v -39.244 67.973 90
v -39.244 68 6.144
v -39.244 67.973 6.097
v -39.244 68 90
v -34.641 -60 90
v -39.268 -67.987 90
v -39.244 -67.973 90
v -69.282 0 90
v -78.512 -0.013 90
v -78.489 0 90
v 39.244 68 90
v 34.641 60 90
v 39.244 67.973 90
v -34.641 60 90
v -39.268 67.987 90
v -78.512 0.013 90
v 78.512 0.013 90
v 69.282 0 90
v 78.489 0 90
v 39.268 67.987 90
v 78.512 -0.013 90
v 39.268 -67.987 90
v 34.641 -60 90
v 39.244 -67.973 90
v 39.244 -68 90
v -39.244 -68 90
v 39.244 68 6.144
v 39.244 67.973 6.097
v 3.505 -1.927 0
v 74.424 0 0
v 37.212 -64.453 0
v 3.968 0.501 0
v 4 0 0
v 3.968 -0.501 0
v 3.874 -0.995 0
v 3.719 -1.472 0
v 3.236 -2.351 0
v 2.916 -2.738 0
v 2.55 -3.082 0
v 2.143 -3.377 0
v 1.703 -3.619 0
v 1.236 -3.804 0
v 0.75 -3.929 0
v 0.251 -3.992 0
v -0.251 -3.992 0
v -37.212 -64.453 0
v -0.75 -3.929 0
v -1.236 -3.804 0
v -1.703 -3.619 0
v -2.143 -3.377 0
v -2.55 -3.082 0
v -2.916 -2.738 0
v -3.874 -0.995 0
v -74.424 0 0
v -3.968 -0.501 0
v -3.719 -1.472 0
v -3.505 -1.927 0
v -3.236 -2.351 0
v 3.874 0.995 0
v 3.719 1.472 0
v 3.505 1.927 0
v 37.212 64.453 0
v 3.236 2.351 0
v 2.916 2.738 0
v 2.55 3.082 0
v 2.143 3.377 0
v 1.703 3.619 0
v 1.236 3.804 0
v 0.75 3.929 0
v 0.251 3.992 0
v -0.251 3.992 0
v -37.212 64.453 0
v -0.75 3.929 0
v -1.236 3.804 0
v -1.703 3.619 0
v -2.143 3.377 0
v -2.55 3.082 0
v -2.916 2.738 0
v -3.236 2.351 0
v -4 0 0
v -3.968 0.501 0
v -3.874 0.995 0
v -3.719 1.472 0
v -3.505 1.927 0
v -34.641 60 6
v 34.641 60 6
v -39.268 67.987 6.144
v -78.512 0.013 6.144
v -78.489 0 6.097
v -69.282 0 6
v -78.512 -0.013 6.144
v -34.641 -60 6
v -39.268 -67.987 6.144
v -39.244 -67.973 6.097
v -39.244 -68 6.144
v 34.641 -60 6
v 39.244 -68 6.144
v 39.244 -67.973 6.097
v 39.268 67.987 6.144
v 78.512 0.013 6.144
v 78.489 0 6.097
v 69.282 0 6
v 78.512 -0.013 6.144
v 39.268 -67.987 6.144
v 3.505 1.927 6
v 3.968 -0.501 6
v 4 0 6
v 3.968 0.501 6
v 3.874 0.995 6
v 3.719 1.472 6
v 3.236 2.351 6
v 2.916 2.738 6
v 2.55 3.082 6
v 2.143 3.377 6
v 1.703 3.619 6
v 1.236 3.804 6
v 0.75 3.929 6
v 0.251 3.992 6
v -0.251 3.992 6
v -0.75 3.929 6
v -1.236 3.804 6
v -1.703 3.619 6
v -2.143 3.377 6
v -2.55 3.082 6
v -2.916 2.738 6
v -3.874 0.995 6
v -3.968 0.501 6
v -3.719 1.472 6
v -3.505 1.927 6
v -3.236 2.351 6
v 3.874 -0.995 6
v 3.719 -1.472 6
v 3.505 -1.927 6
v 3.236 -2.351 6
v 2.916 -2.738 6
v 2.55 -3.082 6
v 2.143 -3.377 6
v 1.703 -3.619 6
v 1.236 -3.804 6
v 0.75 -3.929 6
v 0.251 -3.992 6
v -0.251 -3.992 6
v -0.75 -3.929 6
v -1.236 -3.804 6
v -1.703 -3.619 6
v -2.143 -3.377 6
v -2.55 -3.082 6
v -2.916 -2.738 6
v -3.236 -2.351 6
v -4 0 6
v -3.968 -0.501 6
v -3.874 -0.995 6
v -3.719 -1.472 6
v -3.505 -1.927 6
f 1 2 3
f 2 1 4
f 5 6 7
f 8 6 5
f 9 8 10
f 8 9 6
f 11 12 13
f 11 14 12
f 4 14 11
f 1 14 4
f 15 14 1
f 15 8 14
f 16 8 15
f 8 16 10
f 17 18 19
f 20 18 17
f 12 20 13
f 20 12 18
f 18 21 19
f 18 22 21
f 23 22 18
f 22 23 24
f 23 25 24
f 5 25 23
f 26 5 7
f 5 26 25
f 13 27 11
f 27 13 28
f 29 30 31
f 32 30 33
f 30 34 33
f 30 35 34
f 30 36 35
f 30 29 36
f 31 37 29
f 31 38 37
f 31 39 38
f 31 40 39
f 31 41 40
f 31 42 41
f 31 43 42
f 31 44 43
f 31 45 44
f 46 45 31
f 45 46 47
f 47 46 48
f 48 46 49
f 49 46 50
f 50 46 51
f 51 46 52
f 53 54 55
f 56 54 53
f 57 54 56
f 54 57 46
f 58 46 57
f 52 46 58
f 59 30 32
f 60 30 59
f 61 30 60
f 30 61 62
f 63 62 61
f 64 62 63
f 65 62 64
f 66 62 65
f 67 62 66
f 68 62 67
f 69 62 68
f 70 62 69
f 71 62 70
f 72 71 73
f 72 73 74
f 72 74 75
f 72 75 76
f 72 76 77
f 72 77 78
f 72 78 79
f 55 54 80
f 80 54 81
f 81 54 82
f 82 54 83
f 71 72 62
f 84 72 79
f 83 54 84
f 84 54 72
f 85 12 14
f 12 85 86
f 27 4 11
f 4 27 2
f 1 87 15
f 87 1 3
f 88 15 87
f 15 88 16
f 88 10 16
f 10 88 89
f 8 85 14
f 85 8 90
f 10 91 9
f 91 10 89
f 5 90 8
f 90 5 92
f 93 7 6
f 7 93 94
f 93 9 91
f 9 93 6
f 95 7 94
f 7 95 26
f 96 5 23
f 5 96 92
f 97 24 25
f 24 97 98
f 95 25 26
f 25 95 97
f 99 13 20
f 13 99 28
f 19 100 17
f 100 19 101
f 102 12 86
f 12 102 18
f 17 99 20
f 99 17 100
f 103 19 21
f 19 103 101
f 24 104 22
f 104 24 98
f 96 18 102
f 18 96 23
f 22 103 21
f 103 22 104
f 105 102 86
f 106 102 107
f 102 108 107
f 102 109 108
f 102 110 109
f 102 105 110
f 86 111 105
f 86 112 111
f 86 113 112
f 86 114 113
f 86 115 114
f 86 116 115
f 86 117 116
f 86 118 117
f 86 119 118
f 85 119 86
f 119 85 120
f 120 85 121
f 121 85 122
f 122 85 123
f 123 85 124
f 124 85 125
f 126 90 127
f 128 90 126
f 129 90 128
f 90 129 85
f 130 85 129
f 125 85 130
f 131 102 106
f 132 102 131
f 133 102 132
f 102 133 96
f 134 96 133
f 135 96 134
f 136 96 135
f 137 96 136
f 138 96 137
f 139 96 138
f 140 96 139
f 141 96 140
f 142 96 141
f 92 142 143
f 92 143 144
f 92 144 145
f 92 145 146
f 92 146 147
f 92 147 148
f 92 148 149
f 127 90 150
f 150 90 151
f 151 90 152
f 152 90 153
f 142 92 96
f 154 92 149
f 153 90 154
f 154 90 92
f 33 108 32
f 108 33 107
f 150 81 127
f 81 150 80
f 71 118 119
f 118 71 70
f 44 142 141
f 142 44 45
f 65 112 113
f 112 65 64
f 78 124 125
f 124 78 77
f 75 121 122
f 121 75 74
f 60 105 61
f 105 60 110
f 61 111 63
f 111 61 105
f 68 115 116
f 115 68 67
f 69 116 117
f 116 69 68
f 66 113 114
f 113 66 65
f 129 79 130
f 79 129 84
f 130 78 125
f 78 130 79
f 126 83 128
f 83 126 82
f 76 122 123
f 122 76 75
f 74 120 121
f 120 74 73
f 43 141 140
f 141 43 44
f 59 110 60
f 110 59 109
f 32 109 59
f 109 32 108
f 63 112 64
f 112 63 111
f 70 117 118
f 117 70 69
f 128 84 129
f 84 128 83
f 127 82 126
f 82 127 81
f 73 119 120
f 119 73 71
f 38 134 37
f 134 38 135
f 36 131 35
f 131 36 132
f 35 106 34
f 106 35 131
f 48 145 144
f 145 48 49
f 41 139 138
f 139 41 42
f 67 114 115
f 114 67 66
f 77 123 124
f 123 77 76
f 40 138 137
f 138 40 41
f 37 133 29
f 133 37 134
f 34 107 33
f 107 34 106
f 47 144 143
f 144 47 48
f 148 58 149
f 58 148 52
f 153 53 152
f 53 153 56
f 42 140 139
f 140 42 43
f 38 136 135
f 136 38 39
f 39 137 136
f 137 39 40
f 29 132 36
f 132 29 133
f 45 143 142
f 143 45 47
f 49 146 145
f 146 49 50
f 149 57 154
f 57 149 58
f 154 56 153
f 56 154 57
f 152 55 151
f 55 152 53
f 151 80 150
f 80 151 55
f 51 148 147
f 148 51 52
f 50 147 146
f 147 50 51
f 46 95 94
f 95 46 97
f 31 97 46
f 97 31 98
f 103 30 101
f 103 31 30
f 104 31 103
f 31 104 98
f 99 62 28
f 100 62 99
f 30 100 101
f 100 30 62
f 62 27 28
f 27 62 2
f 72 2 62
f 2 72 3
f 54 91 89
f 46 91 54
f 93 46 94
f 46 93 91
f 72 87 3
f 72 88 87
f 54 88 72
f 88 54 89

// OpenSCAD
 // Jamison Hunter
 // hex_planter
 // This is the standard sized hex planter from OpenGarden
 
difference() {
union() {
difference() {
union() {
union() {
difference() {
union() {
difference() {
// generating the floor
    
translate([0, 0, 3])
cube([152, 152, 6], center = true);

// shaver 1

scale([1.125, 1.125, 1.125])
translate([0, 0, -1])
union() {

translate([0, 64, 45])
cube([55.5*sqrt(2), 8, 90], center = true );

rotate([0, 0, 60])
translate([0, 64, 45])
cube([55.5*sqrt(2), 8, 90], center = true );

rotate([0, 0, 120])
translate([0, 64, 45])
cube([55.5*sqrt(2), 8, 90], center = true );

rotate([0, 0, 180])
translate([0, 64, 45])
cube([55.5*sqrt(2), 8, 90], center = true );

rotate([0, 0, -60])
translate([0, 64, 45])
cube([55.5*sqrt(2), 8, 90], center = true );

rotate([0, 0,-120])
translate([0, 64, 45])
cube([55.5*sqrt(2), 8, 90], center = true );

}
}
}

// shaver 2

union() {
rotate([0, 0, 30])
translate([100, 0, -1])
cube([50, 90, 20], center = true);

rotate([0, 0, -30])
translate([100, 0, -1])
cube([50, 90, 20], center = true);

rotate([0, 0, 150])
translate([100, 0, -1])
cube([50, 90, 20], center = true);

rotate([0, 0, -150])
translate([100, 0, -1])
cube([50, 90, 20], center = true);

}
}
}

// walls
union() {

translate([0, 64, 45])
cube([55.5*sqrt(2), 8, 90], center = true );

rotate([0, 0, 60])
translate([0, 64, 45])
cube([55.5*sqrt(2), 8, 90], center = true );

rotate([0, 0, 120])
translate([0, 64, 45])
cube([55.5*sqrt(2), 8, 90], center = true );

rotate([0, 0, 180])
translate([0, 64, 45])
cube([55.5*sqrt(2), 8, 90], center = true );

rotate([0, 0, -60])
translate([0, 64, 45])
cube([55.5*sqrt(2), 8, 90], center = true );

rotate([0, 0,-120])
translate([0, 64, 45])
cube([55.5*sqrt(2), 8, 90], center = true );

}
}

// shaver 3
translate([0, 0, -8])
scale([1, 1, 2.5])
union() {
cylinder(r = 4, h = 130, center = true, $fn = 50);


    
}
}
}

// shaver 4


union() {
    
translate([0, -76, 0])
rotate([30, 0 ,0])
cube([100, 20, 40], center = true);
    
rotate([0, 0, 60])
translate([0, -76, 0])
rotate([30, 0 ,0])
cube([100, 20, 40], center = true);

rotate([0, 0, 120])
translate([0, -76, 0])
rotate([30, 0 ,0])
cube([100, 20, 40], center = true);

rotate([0, 0, 180])
translate([0, -76, 0])
rotate([30, 0 ,0])
cube([100, 20, 40], center = true);

rotate([0, 0, -60])
translate([0, -76, 0])
rotate([30, 0 ,0])
cube([100, 20, 40], center = true);

rotate([0, 0, -120])
translate([0, -76, 0])
rotate([30, 0 ,0])
cube([100, 20, 40], center = true);
}
}
